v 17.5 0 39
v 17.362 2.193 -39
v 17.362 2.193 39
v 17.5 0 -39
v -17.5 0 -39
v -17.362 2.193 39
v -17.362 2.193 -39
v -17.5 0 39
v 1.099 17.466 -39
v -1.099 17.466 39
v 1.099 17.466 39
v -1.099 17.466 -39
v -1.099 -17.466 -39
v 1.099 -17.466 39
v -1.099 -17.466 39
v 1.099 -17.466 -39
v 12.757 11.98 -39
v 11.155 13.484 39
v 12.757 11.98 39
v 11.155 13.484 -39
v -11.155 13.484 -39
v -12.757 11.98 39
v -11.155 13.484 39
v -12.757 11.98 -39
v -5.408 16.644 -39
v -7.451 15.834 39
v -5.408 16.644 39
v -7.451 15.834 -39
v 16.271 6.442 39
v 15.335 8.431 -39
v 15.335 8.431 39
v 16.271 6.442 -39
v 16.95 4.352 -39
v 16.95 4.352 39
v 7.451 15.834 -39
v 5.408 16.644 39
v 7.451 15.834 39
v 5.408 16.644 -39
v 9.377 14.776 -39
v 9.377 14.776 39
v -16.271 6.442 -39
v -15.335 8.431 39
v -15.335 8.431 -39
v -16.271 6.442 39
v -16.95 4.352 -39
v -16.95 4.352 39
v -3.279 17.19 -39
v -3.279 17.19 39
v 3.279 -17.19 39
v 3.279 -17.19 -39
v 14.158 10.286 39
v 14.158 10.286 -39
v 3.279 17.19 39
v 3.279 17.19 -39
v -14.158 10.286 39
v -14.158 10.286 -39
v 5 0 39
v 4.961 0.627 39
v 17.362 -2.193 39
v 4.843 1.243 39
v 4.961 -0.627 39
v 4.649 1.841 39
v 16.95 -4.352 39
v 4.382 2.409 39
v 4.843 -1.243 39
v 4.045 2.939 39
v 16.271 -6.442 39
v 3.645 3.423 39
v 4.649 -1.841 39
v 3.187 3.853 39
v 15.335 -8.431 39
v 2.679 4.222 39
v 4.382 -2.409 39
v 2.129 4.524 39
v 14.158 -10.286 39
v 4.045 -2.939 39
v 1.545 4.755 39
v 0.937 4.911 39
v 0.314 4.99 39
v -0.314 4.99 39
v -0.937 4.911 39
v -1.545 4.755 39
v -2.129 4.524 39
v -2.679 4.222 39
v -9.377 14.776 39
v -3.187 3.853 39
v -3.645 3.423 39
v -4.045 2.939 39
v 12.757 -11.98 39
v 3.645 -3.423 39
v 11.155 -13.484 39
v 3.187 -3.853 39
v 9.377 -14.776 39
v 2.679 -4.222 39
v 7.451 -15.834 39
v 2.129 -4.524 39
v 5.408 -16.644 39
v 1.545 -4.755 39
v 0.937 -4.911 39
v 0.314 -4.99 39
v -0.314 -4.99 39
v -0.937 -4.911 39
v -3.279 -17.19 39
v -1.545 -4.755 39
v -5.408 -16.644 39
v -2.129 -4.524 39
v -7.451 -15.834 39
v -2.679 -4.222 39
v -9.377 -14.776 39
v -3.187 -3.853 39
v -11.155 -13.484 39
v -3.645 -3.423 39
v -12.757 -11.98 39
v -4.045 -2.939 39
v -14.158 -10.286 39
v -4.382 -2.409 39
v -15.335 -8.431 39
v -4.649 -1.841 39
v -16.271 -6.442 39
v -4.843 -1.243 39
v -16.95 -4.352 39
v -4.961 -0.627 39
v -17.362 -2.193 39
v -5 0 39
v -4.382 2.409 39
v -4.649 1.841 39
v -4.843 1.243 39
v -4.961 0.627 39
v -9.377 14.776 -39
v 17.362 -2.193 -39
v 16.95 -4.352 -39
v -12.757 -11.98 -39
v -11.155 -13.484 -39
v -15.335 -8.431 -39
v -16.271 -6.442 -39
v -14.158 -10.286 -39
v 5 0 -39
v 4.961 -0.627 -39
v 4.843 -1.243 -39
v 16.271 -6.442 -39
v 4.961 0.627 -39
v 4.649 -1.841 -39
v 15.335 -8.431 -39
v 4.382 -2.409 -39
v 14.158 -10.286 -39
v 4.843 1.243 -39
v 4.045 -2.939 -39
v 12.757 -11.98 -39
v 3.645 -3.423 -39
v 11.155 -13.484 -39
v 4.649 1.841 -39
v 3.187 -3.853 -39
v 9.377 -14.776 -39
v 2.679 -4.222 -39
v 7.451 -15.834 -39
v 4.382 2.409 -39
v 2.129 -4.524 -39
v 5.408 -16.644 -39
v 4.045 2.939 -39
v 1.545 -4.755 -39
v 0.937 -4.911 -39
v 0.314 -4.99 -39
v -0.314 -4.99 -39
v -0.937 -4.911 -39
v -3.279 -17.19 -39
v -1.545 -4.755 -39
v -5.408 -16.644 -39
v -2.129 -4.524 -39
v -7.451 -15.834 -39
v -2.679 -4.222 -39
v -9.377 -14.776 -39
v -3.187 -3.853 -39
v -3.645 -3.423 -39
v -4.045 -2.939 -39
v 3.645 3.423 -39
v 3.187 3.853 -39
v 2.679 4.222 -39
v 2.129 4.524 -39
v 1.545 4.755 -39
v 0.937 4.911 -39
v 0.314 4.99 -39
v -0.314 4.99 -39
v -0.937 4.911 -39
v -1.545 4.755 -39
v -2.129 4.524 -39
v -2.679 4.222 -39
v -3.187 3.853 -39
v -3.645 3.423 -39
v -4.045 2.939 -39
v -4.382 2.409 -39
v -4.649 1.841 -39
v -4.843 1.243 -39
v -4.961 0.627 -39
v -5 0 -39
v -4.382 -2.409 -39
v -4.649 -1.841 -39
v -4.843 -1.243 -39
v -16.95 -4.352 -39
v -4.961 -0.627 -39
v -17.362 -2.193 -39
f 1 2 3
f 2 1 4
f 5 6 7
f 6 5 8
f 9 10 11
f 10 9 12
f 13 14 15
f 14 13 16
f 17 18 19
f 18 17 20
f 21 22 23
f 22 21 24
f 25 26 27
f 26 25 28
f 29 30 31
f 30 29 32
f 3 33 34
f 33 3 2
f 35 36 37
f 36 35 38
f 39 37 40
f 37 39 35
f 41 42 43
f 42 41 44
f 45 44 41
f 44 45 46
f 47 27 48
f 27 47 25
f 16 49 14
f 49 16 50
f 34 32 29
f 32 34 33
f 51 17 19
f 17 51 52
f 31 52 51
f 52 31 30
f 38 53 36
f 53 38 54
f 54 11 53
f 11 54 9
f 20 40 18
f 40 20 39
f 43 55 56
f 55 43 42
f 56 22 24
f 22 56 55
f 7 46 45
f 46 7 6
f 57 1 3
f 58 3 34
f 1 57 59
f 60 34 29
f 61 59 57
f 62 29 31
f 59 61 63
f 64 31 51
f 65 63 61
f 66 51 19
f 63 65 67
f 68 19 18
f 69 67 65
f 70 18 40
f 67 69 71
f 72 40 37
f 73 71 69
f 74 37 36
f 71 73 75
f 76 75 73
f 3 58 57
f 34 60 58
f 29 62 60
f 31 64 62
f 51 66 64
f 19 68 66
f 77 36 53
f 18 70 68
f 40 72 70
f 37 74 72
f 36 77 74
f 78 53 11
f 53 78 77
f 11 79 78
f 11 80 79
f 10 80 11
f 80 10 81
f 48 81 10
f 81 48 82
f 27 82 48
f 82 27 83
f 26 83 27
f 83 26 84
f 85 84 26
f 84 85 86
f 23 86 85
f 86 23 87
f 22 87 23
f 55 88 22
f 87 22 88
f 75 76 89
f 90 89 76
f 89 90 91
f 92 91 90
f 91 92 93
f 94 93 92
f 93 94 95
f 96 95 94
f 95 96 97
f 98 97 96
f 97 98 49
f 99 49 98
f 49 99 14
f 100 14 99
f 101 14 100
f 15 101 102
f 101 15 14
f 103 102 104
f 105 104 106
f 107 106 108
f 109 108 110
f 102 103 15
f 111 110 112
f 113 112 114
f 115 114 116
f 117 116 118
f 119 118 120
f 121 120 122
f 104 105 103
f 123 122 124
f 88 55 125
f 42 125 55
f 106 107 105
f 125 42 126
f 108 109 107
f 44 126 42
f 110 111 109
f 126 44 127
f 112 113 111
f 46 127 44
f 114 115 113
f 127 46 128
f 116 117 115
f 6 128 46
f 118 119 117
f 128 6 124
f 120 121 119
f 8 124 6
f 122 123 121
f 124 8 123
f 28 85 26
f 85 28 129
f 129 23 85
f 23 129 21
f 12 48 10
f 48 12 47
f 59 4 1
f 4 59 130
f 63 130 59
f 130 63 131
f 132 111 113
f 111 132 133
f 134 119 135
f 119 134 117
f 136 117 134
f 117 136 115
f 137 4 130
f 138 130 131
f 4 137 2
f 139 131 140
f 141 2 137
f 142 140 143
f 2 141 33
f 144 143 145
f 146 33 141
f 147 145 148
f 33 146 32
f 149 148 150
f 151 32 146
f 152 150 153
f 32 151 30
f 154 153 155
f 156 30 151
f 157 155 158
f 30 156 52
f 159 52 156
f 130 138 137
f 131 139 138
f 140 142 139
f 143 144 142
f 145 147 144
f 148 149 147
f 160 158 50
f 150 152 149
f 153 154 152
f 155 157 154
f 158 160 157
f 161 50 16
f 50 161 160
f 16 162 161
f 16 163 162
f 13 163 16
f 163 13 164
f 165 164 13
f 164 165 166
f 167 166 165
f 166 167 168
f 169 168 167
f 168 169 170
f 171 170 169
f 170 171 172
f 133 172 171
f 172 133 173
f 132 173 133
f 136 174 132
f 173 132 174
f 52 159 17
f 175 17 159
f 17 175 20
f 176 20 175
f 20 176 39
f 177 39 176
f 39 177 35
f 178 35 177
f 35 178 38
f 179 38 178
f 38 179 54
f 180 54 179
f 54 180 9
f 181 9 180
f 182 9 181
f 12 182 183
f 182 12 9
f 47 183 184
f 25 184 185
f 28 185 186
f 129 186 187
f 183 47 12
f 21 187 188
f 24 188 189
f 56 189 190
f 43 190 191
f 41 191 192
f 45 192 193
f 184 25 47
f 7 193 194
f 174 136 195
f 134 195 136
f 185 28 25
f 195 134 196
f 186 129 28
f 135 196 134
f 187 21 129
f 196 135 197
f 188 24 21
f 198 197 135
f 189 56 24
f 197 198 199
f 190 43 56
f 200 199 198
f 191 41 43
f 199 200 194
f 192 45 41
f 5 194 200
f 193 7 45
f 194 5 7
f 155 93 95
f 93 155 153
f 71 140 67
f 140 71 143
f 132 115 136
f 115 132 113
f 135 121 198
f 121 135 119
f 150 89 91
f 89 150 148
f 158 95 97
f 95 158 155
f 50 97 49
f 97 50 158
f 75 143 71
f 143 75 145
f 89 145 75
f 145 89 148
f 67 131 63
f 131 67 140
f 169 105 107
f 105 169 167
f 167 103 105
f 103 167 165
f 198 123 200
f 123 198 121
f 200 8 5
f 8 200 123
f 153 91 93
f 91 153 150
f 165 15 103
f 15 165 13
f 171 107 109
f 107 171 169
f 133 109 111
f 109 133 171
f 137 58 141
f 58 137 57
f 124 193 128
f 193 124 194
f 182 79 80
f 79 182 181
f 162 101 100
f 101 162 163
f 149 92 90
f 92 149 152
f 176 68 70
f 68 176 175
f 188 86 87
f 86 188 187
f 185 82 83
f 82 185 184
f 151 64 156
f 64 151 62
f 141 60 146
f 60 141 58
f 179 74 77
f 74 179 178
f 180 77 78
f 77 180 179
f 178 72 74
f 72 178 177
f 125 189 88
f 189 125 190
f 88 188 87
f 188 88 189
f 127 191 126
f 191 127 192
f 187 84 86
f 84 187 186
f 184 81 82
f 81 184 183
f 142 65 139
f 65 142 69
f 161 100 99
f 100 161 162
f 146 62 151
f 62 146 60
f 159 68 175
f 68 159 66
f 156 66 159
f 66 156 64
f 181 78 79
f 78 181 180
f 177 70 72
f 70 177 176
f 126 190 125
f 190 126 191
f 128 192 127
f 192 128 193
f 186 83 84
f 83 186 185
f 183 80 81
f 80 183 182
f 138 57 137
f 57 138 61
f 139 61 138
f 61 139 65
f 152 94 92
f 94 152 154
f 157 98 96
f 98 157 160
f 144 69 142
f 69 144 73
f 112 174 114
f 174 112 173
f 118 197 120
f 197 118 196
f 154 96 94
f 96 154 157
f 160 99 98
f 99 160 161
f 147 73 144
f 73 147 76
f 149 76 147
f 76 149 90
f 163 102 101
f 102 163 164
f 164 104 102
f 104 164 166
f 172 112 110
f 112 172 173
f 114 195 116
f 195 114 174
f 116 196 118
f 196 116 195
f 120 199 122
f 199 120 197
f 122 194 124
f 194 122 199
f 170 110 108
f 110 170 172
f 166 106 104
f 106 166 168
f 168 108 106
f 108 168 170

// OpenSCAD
$fn = 50;


difference() {
	union() {
		translate(v = [0, 0, -39.0000000000]) {
			cylinder(h = 78, r = 17.5000000000);
		}
	}
	union() {
		translate(v = [0, 0, -100.0000000000]) {
			cylinder(h = 200, r = 5);
		}
	}
}
